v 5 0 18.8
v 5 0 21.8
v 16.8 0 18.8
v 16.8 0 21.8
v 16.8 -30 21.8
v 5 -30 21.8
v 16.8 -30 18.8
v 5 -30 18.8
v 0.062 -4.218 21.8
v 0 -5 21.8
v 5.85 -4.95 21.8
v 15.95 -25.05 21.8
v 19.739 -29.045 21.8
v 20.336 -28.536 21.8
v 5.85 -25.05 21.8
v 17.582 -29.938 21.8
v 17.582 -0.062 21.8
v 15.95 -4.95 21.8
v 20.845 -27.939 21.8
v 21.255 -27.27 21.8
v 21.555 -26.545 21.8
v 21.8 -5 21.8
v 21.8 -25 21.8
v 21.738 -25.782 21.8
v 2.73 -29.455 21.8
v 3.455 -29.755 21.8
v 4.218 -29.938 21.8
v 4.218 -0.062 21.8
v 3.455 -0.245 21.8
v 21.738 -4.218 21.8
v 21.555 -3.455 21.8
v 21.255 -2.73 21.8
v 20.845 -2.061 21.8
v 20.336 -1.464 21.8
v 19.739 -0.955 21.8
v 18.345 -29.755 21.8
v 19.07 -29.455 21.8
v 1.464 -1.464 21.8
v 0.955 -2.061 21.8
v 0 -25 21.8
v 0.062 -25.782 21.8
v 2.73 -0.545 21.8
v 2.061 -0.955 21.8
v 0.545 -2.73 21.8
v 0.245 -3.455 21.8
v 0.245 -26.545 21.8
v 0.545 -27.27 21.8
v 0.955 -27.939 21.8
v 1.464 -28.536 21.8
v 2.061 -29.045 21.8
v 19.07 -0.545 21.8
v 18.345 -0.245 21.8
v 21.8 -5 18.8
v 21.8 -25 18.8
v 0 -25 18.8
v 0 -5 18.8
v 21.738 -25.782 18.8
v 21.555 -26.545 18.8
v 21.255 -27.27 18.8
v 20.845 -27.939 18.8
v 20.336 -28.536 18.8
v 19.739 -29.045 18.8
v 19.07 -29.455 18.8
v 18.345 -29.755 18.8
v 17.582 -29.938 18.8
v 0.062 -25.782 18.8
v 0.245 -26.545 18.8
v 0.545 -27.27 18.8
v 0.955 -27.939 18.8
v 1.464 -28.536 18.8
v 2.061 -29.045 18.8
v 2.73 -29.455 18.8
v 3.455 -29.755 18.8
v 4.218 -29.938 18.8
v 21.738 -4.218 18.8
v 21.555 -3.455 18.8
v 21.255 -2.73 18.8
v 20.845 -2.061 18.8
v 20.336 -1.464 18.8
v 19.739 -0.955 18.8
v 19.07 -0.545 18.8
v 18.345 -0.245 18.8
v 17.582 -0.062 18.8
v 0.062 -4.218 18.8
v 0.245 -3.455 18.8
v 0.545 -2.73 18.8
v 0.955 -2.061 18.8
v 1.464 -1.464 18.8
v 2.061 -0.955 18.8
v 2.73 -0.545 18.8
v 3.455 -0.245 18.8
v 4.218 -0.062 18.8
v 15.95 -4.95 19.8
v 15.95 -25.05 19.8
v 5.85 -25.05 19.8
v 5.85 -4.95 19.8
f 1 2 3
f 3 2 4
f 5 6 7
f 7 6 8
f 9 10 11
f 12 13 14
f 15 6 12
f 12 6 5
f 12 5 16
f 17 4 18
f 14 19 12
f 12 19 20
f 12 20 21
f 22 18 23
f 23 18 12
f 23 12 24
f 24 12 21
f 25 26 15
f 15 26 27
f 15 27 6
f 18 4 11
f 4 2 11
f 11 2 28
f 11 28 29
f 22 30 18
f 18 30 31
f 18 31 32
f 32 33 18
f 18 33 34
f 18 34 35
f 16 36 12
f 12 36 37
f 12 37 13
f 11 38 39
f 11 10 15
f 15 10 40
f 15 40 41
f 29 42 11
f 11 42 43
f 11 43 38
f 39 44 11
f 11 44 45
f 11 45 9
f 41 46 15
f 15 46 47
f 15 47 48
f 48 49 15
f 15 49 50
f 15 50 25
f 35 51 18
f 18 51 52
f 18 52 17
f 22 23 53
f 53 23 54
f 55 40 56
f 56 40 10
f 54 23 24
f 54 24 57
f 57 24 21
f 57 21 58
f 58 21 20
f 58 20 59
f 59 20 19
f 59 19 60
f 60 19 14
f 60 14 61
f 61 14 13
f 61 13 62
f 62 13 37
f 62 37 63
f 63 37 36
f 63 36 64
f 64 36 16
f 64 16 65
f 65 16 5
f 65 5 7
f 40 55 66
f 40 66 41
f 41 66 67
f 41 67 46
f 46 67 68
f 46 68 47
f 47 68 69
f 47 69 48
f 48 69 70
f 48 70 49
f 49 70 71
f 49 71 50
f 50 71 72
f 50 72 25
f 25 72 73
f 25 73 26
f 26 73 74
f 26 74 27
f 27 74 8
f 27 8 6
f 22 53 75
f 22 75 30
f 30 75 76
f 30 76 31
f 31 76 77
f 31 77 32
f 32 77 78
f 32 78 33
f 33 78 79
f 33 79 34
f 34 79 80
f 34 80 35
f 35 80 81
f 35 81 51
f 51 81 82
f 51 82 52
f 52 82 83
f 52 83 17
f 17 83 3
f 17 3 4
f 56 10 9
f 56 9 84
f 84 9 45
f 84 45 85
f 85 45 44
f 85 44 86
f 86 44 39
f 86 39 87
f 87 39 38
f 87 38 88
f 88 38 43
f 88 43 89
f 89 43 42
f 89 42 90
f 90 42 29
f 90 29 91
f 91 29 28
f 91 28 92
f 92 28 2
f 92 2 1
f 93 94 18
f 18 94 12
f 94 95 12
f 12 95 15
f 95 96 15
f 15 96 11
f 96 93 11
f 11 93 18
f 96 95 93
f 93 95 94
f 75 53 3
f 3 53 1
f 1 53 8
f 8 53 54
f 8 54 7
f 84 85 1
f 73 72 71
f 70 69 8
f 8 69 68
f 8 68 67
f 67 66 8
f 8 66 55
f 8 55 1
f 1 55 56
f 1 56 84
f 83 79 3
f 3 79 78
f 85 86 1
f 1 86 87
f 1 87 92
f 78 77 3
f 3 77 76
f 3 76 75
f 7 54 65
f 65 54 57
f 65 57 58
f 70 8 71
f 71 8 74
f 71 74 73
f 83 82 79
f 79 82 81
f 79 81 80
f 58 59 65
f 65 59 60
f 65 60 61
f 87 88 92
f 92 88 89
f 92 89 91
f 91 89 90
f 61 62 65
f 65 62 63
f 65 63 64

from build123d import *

# Parameters (mm, degrees)
CROQUIS1_W                        = 21.8
CROQUIS1_H                        = 30
SALIENTE_EXTRUIR1_DEPTH           = 21.8
CROQUIS6_R                        = 2
CORTAR_EXTRUIR2_DEPTH             = 21.8
CORTAR_EXTRUIR4_REACH             = 45.017
CROQUIS11_R                       = 3.5
CROQUIS11_W                       = 3.4
CROQUIS11_H                       = 8.4
CORTAR_EXTRUIR4_DIRECTION_2_DEPTH = 3.5
REDONDEO1_R                       = 5
CROQUIS13_R                       = 3.5
CORTAR_EXTRUIR6_DEPTH             = 3.5
CROQUIS16_W                       = 10.1
CROQUIS16_H                       = 20.1
CORTAR_EXTRUIR7_DEPTH             = 2
CROQUIS17_W                       = 10.1
CROQUIS17_H                       = 20.1
CORTAR_EXTRUIR8_DEPTH             = 2.1
CORTAR_EXTRUIR9_START             = -3.5
CROQUIS7_R                        = 3.5
CORTAR_EXTRUIR9_DEPTH             = 3.5
CORTAR_EXTRUIR10_REACH            = 45.017
CROQUIS18_W                       = 18.8
CROQUIS18_H                       = 30


with BuildPart() as part:
    # Croquis1 → Saliente-Extruir1 (new body)
    with BuildSketch(Plane(origin=(0, 0, 0), x_dir=(0, 0, -1), z_dir=(1, 0, 0))):
        with Locations((-10.9, -15)):
            Rectangle(CROQUIS1_W, CROQUIS1_H)
    extrude(amount=SALIENTE_EXTRUIR1_DEPTH)

    # Croquis6 → Cortar-Extruir2 (cut)
    with BuildSketch(Plane.ZY):
        with Locations((10.9, -22)):
            Circle(CROQUIS6_R)
        with Locations((10.9, -7)):
            Circle(CROQUIS6_R)
    extrude(amount=-CORTAR_EXTRUIR2_DEPTH, mode=Mode.SUBTRACT)

    # Cortar-Extruir4: up to this face of the body (flat: up to its plane)
    cortar_extruir4_end = Plane(part.part.faces().sort_by_distance((10.9, 0, 10.9))[0])
    # Croquis11 → Cortar-Extruir4 (cut, up to the picked face)
    with BuildSketch(Plane.XZ.offset(30), mode=Mode.PRIVATE) as cortar_extruir4_sk1:
        with Locations(Location((13.4, 10.9, 0), (0, 0, 270))):
            Circle(CROQUIS11_R)
    cortar_extruir4_tool1 = split(extrude(cortar_extruir4_sk1.sketch, amount=-CORTAR_EXTRUIR4_REACH, mode=Mode.PRIVATE), bisect_by=cortar_extruir4_end, keep=Keep.BOTH, mode=Mode.PRIVATE)
    # Croquis11 → Cortar-Extruir4 (cut, up to the picked face)
    with BuildSketch(Plane.XZ.offset(30), mode=Mode.PRIVATE) as cortar_extruir4_sk2:
        with Locations((7.2, 10.9)):
            Rectangle(CROQUIS11_W, CROQUIS11_H)
    cortar_extruir4_tool2 = split(extrude(cortar_extruir4_sk2.sketch, amount=-CORTAR_EXTRUIR4_REACH, mode=Mode.PRIVATE), bisect_by=cortar_extruir4_end, keep=Keep.BOTH, mode=Mode.PRIVATE)
    add(cortar_extruir4_tool1.solids().sort_by(Axis((13.4, -30, 10.9), (0, 1, 0)))[0], mode=Mode.SUBTRACT)
    add(cortar_extruir4_tool2.solids().sort_by(Axis((7.2, -30, 10.9), (0, 1, 0)))[0], mode=Mode.SUBTRACT)

    # Croquis11 → Cortar-Extruir4 direction 2 (cut)
    with BuildSketch(Plane.XZ.offset(30)):
        with Locations(Location((13.4, 10.9, 0), (0, 0, 270))):
            Circle(CROQUIS11_R)
        with Locations((7.2, 10.9)):
            Rectangle(CROQUIS11_W, CROQUIS11_H)
    extrude(amount=CORTAR_EXTRUIR4_DIRECTION_2_DEPTH, mode=Mode.SUBTRACT)

    # Redondeo1
    # the kernel refuses this fillet: 5 mm, written as the material it takes off along each edge
    with BuildSketch(Plane(origin=(21.8, -30, 34.3), x_dir=(0, 1, 0), z_dir=(0, 0, -1)), Plane(origin=(0, 0, -12.5), x_dir=(1, 0, 0), z_dir=(0, 0, 1))) as redondeo1_piece_1:
        with BuildLine():
            CenterArc((REDONDEO1_R, -REDONDEO1_R), REDONDEO1_R, 90, 90)
            Line((0, -REDONDEO1_R), (0, 0))
            Line((0, 0), (REDONDEO1_R, 0))
        make_face()
    extrude(amount=46.8, mode=Mode.SUBTRACT)
    with BuildSketch(Plane(origin=(21.8, 0, -12.5), x_dir=(-1, 0, 0), z_dir=(0, 0, 1)), Plane(origin=(0, -30, 34.3), x_dir=(0, 1, 0), z_dir=(0, 0, -1))) as redondeo1_piece_2:
        with BuildLine():
            CenterArc((REDONDEO1_R, REDONDEO1_R), REDONDEO1_R, 180, 90)
            Line((0, REDONDEO1_R), (0, 0))
            Line((0, 0), (REDONDEO1_R, 0))
        make_face()
    extrude(amount=46.8, mode=Mode.SUBTRACT)

    # Croquis13 → Cortar-Extruir6 (cut)
    with BuildSketch(Plane.ZY):
        with Locations((10.9, -7)):
            Circle(CROQUIS13_R)
        with Locations(Location((10.9, -22, 0), (0, 0, 301.002719134))):
            Circle(CROQUIS13_R)
    extrude(amount=-CORTAR_EXTRUIR6_DEPTH, mode=Mode.SUBTRACT)

    # Croquis16 → Cortar-Extruir7 (cut)
    with BuildSketch(Plane.XY.offset(21.8)):
        with Locations((10.9, -15)):
            Rectangle(CROQUIS16_W, CROQUIS16_H)
    extrude(amount=-CORTAR_EXTRUIR7_DEPTH, mode=Mode.SUBTRACT)

    # Croquis17 → Cortar-Extruir8 (cut)
    with BuildSketch(Plane(origin=(0, 0, 0), x_dir=(-1, 0, 0), z_dir=(0, 0, -1))):
        with Locations((-10.9, -15)):
            Rectangle(CROQUIS17_W, CROQUIS17_H)
    extrude(amount=-CORTAR_EXTRUIR8_DEPTH, mode=Mode.SUBTRACT)

    # Croquis7 → Cortar-Extruir9 (cut)
    with BuildSketch(Plane(origin=(21.8, 0, 0), x_dir=(0, 0, -1), z_dir=(1, 0, 0)).offset(CORTAR_EXTRUIR9_START)):
        with Locations(Location((-10.9, -22, 0), (0, 0, 238.997280866))):
            Circle(CROQUIS7_R)
        with Locations(Location((-10.9, -7, 0), (0, 0, 180))):
            Circle(CROQUIS7_R)
    extrude(amount=CORTAR_EXTRUIR9_DEPTH, mode=Mode.SUBTRACT)

    # Cortar-Extruir10: up to this face of the body (flat: up to its plane)
    cortar_extruir10_end = Plane(part.part.faces().sort_by_distance((21.8, -14.963855914, 10.9))[0])
    # Croquis18 → Cortar-Extruir10 (cut, up to the picked face)
    with BuildSketch(Plane.ZY, mode=Mode.PRIVATE) as cortar_extruir10_sk1:
        with Locations((9.4, -15)):
            Rectangle(CROQUIS18_W, CROQUIS18_H)
    cortar_extruir10_tool1 = split(extrude(cortar_extruir10_sk1.sketch, amount=-CORTAR_EXTRUIR10_REACH, mode=Mode.PRIVATE), bisect_by=cortar_extruir10_end, keep=Keep.BOTH, mode=Mode.PRIVATE)
    add(cortar_extruir10_tool1.solids().sort_by(Axis((0, -15, 9.4), (1, 0, 0)))[0], mode=Mode.SUBTRACT)


solid = part.part
